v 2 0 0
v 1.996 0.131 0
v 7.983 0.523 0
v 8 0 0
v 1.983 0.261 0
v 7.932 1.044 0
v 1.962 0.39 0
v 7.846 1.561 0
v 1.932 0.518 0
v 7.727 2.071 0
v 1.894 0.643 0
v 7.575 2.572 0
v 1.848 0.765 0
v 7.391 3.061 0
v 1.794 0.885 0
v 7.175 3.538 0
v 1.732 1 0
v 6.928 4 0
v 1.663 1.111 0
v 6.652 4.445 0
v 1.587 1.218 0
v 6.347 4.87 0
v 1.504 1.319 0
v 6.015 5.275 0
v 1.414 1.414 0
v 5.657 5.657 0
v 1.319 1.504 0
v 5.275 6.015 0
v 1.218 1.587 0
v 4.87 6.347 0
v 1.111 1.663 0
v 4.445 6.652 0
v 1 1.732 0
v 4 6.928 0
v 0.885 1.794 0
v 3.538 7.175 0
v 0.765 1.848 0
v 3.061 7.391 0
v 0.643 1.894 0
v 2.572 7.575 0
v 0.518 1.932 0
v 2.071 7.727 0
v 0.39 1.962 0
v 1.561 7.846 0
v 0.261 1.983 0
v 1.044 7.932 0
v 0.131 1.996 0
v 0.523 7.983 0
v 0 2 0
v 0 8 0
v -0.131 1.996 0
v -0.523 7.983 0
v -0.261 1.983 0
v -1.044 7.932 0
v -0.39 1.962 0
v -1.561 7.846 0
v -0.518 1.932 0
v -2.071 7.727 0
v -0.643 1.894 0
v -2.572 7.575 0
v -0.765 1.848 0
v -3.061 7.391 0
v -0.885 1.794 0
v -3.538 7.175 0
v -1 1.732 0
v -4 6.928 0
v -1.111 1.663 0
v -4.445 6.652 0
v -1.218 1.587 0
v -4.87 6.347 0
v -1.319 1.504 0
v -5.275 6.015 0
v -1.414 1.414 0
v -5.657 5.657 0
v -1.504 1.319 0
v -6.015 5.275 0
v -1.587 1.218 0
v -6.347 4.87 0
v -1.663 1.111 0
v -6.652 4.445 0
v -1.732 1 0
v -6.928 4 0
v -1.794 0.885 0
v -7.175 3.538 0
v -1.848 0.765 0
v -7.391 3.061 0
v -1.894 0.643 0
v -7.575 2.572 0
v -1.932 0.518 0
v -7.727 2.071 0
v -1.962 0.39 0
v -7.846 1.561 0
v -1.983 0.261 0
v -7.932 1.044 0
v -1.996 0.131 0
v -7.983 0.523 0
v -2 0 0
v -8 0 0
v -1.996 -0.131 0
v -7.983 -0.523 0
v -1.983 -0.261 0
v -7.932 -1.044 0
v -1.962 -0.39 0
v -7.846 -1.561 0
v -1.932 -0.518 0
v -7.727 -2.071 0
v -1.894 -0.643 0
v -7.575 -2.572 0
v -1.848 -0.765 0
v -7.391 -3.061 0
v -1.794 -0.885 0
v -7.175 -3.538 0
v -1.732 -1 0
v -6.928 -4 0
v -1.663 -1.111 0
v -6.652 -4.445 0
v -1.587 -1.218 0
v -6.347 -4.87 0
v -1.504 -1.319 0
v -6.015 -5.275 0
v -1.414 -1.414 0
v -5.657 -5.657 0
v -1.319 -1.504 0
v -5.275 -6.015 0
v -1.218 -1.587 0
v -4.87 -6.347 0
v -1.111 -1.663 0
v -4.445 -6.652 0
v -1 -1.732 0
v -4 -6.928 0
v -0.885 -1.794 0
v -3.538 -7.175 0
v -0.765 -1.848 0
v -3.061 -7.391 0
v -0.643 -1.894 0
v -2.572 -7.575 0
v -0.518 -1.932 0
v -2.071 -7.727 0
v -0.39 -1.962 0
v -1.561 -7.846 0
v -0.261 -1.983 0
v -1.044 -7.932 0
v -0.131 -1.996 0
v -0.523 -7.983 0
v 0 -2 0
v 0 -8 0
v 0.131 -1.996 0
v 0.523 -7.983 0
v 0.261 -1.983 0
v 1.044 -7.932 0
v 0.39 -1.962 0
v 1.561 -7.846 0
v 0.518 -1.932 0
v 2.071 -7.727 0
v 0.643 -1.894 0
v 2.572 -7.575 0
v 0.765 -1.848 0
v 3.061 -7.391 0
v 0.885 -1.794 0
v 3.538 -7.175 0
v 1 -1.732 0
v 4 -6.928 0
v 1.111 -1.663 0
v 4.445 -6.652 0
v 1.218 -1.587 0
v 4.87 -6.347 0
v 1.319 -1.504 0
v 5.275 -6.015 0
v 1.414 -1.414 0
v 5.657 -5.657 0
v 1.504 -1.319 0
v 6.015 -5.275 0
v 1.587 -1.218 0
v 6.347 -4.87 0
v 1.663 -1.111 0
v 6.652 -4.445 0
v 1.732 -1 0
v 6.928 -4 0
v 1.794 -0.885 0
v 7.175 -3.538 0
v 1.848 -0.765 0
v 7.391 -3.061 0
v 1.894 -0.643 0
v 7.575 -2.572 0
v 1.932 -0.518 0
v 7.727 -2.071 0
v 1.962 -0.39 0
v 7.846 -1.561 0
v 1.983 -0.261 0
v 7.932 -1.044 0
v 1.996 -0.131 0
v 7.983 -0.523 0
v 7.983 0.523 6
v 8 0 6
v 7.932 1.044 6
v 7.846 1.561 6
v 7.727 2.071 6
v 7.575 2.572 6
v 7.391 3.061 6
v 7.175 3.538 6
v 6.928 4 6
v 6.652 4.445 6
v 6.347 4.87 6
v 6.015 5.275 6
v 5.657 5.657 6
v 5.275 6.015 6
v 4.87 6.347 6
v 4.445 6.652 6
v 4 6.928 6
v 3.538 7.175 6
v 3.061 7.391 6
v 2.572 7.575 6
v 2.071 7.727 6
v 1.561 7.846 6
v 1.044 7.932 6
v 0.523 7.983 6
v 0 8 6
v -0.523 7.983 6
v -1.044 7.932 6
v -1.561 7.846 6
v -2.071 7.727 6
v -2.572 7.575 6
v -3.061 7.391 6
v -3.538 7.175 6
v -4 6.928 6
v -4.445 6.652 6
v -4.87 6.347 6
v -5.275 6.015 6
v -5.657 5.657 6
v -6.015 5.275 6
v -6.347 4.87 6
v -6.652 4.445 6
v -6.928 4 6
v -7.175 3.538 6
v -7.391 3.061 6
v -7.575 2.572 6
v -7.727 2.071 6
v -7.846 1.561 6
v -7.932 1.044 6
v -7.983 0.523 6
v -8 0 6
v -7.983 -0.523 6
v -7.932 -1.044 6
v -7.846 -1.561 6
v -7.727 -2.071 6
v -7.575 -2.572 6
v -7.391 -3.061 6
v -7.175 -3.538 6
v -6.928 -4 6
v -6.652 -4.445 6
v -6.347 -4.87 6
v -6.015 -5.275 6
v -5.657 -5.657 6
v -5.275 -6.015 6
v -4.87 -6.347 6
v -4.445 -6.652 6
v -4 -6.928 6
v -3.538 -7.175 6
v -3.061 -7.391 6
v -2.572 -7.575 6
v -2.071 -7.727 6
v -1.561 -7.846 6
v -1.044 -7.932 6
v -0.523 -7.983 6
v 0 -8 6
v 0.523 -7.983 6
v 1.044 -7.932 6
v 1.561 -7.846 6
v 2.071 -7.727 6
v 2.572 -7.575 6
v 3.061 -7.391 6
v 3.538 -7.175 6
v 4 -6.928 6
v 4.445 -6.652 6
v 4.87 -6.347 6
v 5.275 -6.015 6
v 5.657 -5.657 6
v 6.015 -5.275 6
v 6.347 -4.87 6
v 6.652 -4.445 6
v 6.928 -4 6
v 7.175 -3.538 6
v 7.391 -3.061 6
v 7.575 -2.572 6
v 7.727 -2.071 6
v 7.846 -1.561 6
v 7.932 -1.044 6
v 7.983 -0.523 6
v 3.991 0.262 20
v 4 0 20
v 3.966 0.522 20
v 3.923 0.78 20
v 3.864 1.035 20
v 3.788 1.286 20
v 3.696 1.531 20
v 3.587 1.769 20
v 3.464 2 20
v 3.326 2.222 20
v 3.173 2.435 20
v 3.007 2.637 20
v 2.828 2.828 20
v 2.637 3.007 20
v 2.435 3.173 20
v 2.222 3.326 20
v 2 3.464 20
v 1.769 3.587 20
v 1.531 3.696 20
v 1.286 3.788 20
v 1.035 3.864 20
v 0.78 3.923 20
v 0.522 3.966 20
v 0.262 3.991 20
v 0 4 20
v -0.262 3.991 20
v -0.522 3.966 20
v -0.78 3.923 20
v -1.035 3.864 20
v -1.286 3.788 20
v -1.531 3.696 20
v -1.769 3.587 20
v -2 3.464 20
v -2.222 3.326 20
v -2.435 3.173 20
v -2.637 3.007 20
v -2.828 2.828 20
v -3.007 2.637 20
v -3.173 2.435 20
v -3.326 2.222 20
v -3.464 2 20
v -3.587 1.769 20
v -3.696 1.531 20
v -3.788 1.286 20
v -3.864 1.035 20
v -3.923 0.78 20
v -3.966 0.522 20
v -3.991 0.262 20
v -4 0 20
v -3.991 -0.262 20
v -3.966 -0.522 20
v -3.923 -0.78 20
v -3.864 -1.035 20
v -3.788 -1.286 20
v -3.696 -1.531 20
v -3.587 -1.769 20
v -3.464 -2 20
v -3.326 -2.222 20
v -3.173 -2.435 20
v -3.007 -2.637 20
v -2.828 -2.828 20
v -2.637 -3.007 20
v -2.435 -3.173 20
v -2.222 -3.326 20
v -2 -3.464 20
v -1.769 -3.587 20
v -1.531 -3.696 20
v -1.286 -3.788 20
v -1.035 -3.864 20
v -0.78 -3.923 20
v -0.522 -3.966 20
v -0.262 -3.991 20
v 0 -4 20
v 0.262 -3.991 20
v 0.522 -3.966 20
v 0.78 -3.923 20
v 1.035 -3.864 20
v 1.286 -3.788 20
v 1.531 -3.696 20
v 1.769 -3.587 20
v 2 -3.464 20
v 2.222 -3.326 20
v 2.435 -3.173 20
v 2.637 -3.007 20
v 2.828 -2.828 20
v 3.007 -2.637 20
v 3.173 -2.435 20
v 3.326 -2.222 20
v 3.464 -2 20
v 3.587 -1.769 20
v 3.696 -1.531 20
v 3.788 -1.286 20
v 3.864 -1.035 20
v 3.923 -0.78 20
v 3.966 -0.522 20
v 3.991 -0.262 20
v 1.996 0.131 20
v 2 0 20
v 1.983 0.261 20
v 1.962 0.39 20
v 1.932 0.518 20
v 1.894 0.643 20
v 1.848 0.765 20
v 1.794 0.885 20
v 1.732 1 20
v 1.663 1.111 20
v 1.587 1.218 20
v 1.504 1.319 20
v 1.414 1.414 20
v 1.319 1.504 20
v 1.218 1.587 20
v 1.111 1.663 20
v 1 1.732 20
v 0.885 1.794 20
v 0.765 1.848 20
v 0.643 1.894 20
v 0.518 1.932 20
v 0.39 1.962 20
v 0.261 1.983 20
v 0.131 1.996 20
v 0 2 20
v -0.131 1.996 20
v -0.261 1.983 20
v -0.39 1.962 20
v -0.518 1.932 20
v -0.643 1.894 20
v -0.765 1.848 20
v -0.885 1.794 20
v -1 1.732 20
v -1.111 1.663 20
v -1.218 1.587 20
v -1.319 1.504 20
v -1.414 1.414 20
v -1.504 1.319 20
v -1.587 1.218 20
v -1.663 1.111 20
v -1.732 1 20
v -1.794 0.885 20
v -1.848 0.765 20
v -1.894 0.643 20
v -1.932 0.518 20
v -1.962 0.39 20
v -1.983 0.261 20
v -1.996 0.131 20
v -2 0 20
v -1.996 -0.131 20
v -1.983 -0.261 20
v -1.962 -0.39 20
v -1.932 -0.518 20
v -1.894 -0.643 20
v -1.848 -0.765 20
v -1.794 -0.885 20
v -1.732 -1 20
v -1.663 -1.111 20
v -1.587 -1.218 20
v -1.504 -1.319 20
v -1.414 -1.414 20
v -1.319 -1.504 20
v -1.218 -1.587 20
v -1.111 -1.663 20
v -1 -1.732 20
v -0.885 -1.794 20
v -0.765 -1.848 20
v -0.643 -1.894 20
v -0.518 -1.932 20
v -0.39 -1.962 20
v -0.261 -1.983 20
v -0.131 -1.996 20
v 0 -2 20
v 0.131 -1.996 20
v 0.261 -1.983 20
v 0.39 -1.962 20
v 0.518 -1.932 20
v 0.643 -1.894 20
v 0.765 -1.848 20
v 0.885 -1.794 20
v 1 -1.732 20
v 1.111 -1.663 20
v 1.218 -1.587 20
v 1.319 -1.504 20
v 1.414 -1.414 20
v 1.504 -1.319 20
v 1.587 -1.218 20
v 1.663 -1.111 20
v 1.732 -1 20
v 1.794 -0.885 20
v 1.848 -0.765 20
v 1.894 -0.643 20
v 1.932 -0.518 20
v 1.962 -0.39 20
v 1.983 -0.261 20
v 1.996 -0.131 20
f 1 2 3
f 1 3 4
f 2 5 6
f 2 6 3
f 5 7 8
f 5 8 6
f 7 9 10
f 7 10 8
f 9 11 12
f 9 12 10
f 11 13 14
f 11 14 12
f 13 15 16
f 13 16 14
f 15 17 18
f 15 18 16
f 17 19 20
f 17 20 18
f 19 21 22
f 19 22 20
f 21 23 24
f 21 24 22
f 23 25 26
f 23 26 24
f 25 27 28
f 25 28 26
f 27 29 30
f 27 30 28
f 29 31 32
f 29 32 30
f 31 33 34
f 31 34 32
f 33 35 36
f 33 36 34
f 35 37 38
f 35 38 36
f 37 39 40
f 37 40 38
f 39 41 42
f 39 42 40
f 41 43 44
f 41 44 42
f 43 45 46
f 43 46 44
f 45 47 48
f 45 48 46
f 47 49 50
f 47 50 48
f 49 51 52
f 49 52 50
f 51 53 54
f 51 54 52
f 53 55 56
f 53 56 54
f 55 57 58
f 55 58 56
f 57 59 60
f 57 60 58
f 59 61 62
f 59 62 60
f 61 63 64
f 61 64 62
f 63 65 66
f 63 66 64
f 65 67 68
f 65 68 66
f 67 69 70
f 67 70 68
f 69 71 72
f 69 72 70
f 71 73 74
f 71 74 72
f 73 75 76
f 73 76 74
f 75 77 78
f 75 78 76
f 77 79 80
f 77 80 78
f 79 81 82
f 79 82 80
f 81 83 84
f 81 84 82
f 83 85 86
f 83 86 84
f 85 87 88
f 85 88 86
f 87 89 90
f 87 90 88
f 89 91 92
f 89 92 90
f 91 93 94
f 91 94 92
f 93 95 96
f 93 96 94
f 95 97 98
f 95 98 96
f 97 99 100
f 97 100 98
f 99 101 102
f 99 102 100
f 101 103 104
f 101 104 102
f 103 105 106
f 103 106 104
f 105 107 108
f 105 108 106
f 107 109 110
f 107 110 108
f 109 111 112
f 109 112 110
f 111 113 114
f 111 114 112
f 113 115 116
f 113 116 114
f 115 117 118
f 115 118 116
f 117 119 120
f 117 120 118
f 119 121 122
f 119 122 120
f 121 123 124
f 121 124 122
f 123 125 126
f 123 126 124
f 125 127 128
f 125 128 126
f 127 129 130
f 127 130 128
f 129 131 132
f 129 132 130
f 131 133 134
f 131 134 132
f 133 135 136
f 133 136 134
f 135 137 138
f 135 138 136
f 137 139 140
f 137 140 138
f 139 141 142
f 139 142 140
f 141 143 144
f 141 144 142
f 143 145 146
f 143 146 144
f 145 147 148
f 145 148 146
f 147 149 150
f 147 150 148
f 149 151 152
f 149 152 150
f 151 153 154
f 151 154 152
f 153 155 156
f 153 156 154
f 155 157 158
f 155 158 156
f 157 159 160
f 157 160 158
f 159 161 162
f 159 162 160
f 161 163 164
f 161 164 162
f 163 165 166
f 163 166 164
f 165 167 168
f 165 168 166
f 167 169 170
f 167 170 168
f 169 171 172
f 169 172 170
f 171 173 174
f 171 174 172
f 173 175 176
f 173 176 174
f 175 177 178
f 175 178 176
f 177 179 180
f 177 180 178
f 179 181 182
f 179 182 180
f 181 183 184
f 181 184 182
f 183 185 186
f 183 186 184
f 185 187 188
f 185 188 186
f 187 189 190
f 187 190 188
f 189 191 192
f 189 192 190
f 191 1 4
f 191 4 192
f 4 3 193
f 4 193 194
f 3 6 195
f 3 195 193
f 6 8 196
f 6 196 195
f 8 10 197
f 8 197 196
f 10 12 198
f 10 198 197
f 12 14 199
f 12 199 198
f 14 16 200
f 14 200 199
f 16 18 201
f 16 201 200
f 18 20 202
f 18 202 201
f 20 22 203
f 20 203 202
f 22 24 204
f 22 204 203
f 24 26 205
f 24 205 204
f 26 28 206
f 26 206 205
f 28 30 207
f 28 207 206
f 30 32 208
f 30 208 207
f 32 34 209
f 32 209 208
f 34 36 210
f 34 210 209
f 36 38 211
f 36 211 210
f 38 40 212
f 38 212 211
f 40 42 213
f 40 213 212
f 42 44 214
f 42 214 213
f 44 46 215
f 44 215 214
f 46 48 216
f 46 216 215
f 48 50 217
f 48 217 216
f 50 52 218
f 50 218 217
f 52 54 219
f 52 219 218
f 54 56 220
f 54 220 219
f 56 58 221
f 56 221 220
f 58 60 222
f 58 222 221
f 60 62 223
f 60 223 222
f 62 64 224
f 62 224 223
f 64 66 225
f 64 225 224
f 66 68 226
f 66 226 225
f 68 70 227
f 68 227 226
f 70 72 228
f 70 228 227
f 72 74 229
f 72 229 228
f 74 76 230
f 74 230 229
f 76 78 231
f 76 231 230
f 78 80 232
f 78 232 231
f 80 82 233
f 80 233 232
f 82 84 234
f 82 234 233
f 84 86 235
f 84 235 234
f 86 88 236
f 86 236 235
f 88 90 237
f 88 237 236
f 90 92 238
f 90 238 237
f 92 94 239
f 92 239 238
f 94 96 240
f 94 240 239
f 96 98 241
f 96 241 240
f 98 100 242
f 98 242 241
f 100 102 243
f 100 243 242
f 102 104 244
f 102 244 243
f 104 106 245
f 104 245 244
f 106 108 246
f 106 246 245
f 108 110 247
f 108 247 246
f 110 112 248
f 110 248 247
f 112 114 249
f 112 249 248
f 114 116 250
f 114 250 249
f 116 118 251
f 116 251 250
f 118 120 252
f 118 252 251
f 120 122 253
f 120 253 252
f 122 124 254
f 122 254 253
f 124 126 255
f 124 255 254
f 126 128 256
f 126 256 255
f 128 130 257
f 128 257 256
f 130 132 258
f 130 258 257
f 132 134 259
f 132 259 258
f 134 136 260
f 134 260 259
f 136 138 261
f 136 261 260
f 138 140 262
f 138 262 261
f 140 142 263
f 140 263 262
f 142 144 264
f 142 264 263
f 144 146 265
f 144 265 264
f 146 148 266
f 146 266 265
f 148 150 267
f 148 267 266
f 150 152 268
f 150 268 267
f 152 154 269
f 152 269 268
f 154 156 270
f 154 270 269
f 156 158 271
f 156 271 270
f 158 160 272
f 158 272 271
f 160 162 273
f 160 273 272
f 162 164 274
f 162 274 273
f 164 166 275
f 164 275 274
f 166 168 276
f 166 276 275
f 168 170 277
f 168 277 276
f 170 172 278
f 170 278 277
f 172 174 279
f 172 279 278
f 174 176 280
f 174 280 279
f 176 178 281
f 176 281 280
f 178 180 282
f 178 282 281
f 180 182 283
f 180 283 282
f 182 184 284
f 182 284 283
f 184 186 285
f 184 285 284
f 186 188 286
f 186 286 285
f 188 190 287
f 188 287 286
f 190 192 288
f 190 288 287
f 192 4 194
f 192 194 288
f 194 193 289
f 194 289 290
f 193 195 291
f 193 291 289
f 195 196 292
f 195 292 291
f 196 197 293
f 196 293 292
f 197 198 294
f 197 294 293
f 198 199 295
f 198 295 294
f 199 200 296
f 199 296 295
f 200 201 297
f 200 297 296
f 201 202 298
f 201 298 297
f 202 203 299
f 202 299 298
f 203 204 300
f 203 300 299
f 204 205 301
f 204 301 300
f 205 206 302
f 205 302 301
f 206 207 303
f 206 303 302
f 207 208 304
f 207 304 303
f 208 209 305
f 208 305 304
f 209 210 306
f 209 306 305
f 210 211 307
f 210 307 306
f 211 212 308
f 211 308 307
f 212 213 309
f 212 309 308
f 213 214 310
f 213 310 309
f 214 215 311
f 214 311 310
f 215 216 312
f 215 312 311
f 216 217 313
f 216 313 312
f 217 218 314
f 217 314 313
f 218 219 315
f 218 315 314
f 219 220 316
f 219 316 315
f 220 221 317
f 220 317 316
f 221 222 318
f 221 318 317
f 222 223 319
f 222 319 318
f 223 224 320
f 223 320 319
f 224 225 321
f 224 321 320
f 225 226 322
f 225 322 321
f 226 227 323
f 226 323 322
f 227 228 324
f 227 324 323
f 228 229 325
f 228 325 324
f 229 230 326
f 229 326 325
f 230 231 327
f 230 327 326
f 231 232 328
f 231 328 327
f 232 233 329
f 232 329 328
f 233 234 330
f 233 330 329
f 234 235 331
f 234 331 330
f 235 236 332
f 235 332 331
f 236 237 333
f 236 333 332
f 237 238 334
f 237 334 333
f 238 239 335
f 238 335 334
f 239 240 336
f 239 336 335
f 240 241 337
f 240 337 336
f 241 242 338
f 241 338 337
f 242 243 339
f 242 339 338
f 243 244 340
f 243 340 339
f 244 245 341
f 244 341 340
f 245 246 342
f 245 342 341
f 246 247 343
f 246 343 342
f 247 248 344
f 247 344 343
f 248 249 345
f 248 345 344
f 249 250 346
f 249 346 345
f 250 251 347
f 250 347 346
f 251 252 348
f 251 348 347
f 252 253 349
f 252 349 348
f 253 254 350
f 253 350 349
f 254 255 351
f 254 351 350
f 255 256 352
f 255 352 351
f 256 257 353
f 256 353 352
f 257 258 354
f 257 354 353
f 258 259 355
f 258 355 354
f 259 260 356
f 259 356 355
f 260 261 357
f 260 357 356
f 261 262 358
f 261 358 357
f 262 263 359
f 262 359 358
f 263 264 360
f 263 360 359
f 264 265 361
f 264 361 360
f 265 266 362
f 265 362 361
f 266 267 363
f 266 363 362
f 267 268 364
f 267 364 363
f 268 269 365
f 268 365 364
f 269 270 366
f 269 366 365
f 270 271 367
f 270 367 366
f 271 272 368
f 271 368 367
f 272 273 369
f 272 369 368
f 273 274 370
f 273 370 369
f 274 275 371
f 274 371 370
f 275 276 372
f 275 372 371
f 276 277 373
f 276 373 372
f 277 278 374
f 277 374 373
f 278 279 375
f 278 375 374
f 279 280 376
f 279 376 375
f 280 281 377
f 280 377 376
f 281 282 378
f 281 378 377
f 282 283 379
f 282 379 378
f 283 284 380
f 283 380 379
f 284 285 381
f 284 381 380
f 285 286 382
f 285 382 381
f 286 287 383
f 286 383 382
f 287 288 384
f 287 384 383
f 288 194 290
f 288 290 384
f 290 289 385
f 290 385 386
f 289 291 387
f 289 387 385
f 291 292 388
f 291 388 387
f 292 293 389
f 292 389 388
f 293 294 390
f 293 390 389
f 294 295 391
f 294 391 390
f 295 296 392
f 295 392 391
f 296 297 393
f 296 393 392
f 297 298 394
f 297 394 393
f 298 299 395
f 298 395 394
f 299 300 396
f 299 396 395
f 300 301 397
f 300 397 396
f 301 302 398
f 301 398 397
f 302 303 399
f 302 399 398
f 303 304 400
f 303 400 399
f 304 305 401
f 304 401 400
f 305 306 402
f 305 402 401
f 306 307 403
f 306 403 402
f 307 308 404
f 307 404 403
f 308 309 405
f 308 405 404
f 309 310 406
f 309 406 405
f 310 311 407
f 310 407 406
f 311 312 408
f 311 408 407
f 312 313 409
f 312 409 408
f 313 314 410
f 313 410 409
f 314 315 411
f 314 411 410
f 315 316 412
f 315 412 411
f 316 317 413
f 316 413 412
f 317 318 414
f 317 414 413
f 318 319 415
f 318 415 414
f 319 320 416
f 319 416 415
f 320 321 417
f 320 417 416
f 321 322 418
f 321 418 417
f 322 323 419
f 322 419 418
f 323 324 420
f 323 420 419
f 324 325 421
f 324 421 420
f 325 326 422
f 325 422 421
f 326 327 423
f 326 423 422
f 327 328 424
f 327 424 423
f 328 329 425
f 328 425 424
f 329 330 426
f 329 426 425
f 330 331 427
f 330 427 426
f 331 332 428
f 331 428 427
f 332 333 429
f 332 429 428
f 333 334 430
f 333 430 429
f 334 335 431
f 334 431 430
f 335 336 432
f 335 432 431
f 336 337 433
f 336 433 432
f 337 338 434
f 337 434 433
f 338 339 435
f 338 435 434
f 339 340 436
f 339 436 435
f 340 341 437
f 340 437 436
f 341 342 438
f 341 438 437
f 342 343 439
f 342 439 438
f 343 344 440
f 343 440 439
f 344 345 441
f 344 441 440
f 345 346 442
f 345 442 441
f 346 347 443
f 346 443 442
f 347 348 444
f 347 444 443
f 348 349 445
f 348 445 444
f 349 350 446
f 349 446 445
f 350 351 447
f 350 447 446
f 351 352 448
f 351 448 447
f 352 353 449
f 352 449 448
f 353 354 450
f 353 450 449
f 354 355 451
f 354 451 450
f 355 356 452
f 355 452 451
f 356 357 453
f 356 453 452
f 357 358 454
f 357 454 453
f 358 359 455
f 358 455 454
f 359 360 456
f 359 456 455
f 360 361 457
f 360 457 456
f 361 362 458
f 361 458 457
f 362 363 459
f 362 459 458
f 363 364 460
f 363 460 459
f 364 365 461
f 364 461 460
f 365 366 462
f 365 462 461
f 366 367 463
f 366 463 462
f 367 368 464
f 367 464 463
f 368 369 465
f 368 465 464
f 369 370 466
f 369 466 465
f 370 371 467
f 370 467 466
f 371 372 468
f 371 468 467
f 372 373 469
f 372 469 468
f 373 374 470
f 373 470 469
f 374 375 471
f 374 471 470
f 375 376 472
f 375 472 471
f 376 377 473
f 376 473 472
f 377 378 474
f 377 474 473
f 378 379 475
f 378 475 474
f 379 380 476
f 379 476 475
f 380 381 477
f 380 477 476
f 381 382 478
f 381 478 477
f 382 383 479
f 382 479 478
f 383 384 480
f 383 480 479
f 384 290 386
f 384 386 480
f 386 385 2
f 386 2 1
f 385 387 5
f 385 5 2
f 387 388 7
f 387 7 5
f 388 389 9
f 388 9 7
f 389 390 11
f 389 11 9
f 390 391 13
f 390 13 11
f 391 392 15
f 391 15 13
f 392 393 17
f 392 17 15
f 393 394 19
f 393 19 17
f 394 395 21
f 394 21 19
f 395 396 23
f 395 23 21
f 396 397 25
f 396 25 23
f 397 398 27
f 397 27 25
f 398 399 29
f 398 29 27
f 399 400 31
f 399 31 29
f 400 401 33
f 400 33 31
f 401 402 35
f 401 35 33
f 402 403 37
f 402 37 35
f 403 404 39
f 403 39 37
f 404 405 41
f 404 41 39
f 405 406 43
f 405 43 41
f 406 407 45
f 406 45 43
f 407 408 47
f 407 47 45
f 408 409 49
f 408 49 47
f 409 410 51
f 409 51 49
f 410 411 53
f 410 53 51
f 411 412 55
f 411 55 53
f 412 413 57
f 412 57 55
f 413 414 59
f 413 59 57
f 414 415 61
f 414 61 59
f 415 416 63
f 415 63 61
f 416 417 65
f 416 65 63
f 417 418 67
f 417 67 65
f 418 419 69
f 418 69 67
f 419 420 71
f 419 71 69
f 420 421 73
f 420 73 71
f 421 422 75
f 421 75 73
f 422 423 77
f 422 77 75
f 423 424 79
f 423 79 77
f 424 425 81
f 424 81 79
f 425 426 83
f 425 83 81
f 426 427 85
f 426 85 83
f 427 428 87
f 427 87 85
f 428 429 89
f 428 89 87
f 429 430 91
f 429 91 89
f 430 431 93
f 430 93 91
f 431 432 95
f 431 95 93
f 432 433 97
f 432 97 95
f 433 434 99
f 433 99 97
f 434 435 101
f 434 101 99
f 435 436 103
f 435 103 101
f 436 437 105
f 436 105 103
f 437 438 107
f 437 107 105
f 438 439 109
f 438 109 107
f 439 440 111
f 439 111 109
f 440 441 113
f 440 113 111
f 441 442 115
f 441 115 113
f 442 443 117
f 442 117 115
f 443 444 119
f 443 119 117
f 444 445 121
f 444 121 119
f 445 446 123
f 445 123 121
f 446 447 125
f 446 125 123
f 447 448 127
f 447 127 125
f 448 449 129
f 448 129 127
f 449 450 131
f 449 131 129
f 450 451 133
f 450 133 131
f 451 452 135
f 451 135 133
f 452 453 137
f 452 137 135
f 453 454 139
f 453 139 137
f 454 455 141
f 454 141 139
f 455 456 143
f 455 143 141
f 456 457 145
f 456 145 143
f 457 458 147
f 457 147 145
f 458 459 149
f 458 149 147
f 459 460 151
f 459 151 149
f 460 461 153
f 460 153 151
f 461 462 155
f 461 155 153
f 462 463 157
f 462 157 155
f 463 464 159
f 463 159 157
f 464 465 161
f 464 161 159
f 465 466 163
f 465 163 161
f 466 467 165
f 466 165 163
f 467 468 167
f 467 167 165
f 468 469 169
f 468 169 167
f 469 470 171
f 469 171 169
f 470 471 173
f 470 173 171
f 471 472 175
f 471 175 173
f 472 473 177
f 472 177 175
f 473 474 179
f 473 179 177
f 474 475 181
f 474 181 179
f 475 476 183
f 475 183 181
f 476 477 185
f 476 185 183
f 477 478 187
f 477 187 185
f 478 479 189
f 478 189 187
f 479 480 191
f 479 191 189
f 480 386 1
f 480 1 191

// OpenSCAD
// Original MechIntel educational model. CC0-1.0. Units: mm.
// Not a standardized or load-rated component.
$fn=96;
// Section points: [radius, height], mm. Edit to change the profile.
section=[[2, 0], [8, 0], [8, 6], [4, 20], [2, 20]];
rotate_extrude($fn=96) polygon(points=section);
